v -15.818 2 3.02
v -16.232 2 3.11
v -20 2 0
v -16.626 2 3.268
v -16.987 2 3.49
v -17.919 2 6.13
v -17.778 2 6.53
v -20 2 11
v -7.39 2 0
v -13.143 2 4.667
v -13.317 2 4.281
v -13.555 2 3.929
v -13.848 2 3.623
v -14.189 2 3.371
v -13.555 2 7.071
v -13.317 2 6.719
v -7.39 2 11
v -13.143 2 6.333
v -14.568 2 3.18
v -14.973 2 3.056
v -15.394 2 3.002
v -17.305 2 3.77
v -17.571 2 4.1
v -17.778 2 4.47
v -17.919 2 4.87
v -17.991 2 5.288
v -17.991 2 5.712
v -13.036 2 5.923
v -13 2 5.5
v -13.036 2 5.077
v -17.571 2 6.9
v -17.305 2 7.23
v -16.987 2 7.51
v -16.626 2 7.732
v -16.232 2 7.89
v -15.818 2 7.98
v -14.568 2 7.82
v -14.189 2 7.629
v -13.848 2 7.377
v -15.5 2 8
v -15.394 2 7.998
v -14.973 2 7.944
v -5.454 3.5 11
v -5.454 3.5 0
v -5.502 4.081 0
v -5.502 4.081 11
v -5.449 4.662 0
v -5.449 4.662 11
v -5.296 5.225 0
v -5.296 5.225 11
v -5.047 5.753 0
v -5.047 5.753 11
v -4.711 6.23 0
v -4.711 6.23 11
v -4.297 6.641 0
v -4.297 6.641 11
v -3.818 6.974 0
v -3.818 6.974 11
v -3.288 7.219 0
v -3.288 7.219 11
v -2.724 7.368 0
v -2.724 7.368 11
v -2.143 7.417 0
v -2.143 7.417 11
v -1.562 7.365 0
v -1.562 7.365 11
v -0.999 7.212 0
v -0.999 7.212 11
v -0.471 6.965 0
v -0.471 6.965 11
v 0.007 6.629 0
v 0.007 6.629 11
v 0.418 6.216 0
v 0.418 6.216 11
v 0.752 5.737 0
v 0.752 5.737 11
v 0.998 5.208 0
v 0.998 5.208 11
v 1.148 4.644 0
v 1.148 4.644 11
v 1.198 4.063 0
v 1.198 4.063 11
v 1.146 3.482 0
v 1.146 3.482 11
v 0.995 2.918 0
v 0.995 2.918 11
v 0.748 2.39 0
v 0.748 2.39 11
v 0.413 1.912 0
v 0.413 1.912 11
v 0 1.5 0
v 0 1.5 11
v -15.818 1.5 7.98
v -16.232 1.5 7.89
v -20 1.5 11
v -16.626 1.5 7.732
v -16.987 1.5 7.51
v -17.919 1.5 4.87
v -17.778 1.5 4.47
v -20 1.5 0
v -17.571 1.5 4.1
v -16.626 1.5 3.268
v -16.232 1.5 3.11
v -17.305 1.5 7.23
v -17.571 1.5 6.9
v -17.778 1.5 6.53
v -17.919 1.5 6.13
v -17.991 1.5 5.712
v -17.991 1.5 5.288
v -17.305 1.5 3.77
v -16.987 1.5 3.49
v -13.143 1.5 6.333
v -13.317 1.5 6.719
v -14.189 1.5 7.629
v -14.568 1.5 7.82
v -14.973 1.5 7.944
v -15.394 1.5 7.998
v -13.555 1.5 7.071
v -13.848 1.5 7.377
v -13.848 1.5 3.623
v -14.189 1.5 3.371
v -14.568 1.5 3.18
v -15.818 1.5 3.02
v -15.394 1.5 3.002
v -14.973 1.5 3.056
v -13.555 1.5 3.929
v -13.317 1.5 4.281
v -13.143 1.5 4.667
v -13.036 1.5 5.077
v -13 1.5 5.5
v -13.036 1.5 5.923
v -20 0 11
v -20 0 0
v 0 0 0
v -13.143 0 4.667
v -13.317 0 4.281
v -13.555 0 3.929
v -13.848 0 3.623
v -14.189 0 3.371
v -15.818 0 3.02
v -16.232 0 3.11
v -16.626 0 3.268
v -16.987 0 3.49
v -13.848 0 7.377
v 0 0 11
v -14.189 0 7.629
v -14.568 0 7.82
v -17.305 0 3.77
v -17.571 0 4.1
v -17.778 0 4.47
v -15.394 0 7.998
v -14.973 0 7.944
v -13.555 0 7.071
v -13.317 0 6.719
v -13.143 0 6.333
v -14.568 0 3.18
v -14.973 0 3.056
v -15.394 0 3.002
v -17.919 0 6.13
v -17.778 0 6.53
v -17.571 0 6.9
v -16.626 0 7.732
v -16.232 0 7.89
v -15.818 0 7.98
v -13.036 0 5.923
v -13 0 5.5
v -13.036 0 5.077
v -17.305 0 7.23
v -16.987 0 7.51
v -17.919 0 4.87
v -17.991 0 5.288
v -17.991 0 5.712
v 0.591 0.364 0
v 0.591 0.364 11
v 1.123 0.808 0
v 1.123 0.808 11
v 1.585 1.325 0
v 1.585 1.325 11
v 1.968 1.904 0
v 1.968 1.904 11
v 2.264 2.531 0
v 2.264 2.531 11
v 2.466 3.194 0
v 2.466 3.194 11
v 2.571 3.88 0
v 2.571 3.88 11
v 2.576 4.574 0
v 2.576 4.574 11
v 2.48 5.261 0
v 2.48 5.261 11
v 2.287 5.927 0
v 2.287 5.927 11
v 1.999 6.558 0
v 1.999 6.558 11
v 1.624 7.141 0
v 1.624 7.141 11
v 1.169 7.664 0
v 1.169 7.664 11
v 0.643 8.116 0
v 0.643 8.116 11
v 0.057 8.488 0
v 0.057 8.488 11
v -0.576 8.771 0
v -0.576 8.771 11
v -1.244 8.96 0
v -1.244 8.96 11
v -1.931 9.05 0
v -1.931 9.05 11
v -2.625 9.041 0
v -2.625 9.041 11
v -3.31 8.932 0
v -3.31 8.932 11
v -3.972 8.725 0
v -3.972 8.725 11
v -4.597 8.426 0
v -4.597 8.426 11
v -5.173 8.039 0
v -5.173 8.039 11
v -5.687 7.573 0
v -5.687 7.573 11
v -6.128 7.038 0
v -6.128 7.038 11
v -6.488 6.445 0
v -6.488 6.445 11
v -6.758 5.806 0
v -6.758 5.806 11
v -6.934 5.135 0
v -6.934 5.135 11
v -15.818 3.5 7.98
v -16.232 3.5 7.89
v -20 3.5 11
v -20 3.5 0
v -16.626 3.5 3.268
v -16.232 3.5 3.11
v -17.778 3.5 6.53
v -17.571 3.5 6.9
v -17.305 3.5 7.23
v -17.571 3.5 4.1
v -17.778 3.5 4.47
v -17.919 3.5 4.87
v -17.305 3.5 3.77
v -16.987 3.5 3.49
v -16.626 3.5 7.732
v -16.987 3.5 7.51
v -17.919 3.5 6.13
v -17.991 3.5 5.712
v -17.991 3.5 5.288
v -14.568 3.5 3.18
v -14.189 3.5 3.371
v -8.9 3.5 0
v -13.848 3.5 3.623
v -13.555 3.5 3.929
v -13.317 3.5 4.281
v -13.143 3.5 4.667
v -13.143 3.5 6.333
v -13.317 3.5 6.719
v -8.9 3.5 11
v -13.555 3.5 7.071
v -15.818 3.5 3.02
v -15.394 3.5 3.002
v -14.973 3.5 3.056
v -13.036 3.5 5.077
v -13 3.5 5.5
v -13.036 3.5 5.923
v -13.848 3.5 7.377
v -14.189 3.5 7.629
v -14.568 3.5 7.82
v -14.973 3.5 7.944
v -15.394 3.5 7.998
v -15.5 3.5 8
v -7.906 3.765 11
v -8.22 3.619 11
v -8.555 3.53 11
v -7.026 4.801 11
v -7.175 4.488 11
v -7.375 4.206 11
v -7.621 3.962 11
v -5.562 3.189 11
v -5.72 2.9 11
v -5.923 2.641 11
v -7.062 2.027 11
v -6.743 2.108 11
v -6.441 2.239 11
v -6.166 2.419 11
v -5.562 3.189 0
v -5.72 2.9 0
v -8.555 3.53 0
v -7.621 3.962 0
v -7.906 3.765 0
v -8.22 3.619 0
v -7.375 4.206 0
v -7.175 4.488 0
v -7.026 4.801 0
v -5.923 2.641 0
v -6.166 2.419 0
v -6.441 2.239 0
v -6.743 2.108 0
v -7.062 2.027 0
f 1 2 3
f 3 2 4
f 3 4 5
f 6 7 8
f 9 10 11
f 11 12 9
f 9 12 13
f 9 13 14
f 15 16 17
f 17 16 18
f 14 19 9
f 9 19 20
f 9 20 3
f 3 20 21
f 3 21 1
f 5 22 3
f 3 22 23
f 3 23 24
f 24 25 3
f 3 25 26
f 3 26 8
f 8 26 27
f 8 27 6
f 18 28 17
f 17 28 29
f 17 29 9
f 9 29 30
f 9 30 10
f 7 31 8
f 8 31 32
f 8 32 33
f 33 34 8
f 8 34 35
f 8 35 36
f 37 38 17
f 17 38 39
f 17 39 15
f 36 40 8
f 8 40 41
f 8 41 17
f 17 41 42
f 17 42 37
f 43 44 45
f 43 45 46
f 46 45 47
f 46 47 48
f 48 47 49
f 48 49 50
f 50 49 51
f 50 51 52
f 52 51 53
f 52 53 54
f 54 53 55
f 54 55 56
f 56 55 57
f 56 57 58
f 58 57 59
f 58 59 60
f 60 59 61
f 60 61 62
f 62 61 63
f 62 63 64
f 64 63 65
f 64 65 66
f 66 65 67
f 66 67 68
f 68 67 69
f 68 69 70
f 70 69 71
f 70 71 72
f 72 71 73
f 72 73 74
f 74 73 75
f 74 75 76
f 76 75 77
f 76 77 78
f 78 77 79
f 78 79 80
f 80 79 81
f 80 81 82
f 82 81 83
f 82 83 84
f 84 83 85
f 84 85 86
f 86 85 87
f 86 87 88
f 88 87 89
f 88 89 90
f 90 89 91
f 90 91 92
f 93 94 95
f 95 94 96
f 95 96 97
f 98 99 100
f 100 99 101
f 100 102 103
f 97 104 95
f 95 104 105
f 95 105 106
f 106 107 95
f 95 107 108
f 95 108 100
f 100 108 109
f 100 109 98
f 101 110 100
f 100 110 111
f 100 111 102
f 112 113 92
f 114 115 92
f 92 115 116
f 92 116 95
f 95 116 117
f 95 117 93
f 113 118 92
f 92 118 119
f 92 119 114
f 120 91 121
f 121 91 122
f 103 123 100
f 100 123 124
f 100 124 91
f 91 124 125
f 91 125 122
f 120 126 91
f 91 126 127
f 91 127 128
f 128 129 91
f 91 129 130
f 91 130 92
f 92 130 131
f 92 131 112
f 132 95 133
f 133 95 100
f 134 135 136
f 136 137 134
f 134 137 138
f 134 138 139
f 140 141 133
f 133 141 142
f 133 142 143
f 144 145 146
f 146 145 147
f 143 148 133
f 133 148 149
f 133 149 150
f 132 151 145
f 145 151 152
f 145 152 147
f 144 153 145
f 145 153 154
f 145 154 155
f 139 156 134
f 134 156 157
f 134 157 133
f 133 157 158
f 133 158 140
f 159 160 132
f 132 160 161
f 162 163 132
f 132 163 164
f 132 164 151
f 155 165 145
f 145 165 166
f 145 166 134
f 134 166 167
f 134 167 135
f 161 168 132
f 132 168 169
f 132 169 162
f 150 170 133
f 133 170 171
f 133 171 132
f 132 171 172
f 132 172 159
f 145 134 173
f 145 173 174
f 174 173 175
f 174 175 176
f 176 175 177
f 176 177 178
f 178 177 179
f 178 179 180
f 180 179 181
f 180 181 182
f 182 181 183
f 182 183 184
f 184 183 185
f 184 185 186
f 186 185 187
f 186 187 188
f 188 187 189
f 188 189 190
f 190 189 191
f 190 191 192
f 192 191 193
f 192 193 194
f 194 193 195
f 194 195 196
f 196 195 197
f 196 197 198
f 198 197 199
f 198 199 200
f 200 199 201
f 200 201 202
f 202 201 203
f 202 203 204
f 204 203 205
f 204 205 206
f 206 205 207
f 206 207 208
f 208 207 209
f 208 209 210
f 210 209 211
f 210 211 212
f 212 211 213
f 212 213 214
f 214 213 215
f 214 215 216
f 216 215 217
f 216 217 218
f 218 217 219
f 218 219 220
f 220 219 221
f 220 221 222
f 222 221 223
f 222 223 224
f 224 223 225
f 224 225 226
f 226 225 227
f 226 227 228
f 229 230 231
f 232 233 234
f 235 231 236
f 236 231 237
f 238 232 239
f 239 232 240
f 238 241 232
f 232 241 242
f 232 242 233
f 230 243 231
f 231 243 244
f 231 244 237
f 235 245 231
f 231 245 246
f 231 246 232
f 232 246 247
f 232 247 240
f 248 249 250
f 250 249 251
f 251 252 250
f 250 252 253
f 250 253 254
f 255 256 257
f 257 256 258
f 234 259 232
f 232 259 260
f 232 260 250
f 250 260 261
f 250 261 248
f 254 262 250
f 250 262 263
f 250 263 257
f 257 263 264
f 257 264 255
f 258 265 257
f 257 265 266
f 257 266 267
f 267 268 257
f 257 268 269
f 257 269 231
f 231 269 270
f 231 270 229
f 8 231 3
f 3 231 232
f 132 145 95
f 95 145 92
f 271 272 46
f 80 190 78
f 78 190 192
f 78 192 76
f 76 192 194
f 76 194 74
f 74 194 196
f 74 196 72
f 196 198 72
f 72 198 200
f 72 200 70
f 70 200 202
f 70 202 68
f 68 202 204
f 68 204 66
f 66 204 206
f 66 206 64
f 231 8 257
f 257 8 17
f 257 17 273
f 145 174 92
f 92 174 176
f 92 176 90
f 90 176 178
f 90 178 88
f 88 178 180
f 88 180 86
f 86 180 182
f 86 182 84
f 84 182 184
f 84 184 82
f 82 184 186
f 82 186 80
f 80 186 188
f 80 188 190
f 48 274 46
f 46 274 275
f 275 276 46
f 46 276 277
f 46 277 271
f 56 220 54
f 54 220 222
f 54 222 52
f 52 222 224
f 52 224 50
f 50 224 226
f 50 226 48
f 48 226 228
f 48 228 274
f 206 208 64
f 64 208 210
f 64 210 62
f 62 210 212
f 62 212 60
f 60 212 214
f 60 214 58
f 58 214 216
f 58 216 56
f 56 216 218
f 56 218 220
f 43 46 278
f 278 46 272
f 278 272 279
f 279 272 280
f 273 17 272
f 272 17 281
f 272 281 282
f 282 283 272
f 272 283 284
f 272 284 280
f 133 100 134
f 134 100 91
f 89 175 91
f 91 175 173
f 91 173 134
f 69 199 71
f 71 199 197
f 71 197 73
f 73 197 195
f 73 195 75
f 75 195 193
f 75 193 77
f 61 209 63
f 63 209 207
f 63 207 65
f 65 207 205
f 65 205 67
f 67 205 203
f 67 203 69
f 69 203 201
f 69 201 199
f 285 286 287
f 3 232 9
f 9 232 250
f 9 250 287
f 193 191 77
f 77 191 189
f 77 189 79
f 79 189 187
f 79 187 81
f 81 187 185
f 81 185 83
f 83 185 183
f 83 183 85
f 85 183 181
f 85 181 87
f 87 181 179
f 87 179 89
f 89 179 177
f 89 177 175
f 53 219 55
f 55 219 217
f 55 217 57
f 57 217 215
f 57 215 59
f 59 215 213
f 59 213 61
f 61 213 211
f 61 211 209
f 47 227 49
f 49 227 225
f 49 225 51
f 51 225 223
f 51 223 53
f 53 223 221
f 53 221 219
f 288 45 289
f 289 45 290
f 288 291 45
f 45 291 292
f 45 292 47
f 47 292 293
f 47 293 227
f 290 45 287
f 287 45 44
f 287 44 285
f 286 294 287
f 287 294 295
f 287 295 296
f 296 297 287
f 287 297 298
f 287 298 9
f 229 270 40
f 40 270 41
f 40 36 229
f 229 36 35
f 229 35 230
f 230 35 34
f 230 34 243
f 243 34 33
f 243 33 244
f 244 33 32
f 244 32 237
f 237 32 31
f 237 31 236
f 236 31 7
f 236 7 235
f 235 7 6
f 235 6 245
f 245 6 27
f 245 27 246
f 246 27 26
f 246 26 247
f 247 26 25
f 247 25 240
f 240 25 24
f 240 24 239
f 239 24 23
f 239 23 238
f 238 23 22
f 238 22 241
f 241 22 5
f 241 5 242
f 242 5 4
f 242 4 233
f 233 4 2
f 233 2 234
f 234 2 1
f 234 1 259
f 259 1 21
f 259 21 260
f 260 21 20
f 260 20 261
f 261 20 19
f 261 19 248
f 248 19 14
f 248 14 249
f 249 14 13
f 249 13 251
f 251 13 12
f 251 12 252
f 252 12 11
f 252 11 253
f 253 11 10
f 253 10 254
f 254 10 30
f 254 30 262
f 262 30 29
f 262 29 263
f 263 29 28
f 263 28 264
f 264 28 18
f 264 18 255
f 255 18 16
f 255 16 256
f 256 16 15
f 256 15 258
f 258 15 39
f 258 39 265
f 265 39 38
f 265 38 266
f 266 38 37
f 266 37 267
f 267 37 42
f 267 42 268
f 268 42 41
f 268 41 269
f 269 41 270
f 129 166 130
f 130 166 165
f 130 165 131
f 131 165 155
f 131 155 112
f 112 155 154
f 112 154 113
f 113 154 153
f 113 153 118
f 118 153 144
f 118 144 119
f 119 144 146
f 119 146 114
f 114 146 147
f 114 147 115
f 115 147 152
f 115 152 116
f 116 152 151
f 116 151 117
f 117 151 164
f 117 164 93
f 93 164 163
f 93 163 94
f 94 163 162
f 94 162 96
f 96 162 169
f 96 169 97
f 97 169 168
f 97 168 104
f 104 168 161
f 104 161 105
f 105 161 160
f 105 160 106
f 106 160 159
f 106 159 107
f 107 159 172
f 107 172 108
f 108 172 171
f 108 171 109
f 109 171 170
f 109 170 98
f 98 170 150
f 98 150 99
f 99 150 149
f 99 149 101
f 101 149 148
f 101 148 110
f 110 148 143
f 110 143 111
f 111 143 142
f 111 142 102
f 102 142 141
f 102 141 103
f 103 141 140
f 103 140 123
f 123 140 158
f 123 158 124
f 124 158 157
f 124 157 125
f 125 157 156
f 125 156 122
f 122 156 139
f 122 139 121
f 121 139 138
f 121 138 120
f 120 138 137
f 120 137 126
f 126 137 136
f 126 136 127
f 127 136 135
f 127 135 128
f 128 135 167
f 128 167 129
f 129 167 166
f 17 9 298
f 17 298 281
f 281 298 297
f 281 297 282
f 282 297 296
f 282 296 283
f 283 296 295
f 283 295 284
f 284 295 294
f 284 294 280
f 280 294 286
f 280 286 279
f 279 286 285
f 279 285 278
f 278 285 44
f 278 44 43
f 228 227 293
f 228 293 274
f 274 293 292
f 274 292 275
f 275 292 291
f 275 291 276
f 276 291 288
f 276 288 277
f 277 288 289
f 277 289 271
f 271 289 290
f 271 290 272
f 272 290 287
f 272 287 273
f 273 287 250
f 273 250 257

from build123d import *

# Parameters (mm, degrees)
SKETCH1_W           = 14.546192004
SKETCH1_H           = 1.5
SKETCH1_W_2         = 20
BOSS_EXTRUDE1_DEPTH = 11
SKETCH2_R           = 2.5
CUT_EXTRUDE1_DEPTH  = 25.55732176
FILLET1_R           = 2


with BuildPart() as part:
    # Sketch1 → Boss-Extrude1 (new body)
    with BuildSketch(Plane.XY):
        with Locations((-12.726903998, 2.75)):
            Rectangle(SKETCH1_W, SKETCH1_H)
        with BuildLine():
            Line((0, 1.5), (0, 0))
            ThreePointArc((0, 0), (-0.056155977, 8.546349982), (-6.953807996, 3.5))
            Line((-6.953807996, 3.5), (-5.453807996, 3.5))
            ThreePointArc((-5.453807996, 3.5), (-0.998787688, 7.212407275), (0, 1.5))
        make_face()
        with Locations((-10, 0.75)):
            Rectangle(SKETCH1_W_2, SKETCH1_H)
    extrude(amount=BOSS_EXTRUDE1_DEPTH)

    # Sketch2 → Cut-Extrude1 (cut, through all)
    with BuildSketch(Plane(origin=(0, 0, 0), x_dir=(-1, 0, 0), z_dir=(0, -1, 0))):
        with Locations(Location((15.5, -5.5, 0), (0, 0, 270))):
            Circle(SKETCH2_R)
    extrude(amount=-CUT_EXTRUDE1_DEPTH, mode=Mode.SUBTRACT)

    # Fillet1
    # the kernel refuses this fillet: 2 mm, written as the material it adds along each edge
    with BuildSketch(Plane(origin=(-6.953807996, 3.5, 0), x_dir=(-1, 0, 0), z_dir=(0, 0, 1))) as fillet1_piece_1:
        with BuildLine():
            CenterArc((1.946122673, -2), FILLET1_R, 90, 79.482966368)
            ThreePointArc((-0.0202787, -1.634944336), (0.059988825, -0.818341988), (0, 0))
            Line((0, 0), (1.946122673, 0))
        make_face()
    extrude(amount=11)
    # the kernel refuses this fillet: 2 mm, written as the material it takes off along each edge
    with BuildSketch(Plane(origin=(-5.453807996, 2, -4.841229183), x_dir=(-1, 0, 0), z_dir=(0, 0, 1))) as fillet1_2_piece_1:
        with BuildLine():
            CenterArc((1.936491673, -2), FILLET1_R, 90, 75.522487814)
            Line((0, -1.5), (0, 0))
            Line((0, 0), (1.936491673, 0))
        make_face()
    extrude(amount=20.682458366, mode=Mode.SUBTRACT)


solid = part.part
